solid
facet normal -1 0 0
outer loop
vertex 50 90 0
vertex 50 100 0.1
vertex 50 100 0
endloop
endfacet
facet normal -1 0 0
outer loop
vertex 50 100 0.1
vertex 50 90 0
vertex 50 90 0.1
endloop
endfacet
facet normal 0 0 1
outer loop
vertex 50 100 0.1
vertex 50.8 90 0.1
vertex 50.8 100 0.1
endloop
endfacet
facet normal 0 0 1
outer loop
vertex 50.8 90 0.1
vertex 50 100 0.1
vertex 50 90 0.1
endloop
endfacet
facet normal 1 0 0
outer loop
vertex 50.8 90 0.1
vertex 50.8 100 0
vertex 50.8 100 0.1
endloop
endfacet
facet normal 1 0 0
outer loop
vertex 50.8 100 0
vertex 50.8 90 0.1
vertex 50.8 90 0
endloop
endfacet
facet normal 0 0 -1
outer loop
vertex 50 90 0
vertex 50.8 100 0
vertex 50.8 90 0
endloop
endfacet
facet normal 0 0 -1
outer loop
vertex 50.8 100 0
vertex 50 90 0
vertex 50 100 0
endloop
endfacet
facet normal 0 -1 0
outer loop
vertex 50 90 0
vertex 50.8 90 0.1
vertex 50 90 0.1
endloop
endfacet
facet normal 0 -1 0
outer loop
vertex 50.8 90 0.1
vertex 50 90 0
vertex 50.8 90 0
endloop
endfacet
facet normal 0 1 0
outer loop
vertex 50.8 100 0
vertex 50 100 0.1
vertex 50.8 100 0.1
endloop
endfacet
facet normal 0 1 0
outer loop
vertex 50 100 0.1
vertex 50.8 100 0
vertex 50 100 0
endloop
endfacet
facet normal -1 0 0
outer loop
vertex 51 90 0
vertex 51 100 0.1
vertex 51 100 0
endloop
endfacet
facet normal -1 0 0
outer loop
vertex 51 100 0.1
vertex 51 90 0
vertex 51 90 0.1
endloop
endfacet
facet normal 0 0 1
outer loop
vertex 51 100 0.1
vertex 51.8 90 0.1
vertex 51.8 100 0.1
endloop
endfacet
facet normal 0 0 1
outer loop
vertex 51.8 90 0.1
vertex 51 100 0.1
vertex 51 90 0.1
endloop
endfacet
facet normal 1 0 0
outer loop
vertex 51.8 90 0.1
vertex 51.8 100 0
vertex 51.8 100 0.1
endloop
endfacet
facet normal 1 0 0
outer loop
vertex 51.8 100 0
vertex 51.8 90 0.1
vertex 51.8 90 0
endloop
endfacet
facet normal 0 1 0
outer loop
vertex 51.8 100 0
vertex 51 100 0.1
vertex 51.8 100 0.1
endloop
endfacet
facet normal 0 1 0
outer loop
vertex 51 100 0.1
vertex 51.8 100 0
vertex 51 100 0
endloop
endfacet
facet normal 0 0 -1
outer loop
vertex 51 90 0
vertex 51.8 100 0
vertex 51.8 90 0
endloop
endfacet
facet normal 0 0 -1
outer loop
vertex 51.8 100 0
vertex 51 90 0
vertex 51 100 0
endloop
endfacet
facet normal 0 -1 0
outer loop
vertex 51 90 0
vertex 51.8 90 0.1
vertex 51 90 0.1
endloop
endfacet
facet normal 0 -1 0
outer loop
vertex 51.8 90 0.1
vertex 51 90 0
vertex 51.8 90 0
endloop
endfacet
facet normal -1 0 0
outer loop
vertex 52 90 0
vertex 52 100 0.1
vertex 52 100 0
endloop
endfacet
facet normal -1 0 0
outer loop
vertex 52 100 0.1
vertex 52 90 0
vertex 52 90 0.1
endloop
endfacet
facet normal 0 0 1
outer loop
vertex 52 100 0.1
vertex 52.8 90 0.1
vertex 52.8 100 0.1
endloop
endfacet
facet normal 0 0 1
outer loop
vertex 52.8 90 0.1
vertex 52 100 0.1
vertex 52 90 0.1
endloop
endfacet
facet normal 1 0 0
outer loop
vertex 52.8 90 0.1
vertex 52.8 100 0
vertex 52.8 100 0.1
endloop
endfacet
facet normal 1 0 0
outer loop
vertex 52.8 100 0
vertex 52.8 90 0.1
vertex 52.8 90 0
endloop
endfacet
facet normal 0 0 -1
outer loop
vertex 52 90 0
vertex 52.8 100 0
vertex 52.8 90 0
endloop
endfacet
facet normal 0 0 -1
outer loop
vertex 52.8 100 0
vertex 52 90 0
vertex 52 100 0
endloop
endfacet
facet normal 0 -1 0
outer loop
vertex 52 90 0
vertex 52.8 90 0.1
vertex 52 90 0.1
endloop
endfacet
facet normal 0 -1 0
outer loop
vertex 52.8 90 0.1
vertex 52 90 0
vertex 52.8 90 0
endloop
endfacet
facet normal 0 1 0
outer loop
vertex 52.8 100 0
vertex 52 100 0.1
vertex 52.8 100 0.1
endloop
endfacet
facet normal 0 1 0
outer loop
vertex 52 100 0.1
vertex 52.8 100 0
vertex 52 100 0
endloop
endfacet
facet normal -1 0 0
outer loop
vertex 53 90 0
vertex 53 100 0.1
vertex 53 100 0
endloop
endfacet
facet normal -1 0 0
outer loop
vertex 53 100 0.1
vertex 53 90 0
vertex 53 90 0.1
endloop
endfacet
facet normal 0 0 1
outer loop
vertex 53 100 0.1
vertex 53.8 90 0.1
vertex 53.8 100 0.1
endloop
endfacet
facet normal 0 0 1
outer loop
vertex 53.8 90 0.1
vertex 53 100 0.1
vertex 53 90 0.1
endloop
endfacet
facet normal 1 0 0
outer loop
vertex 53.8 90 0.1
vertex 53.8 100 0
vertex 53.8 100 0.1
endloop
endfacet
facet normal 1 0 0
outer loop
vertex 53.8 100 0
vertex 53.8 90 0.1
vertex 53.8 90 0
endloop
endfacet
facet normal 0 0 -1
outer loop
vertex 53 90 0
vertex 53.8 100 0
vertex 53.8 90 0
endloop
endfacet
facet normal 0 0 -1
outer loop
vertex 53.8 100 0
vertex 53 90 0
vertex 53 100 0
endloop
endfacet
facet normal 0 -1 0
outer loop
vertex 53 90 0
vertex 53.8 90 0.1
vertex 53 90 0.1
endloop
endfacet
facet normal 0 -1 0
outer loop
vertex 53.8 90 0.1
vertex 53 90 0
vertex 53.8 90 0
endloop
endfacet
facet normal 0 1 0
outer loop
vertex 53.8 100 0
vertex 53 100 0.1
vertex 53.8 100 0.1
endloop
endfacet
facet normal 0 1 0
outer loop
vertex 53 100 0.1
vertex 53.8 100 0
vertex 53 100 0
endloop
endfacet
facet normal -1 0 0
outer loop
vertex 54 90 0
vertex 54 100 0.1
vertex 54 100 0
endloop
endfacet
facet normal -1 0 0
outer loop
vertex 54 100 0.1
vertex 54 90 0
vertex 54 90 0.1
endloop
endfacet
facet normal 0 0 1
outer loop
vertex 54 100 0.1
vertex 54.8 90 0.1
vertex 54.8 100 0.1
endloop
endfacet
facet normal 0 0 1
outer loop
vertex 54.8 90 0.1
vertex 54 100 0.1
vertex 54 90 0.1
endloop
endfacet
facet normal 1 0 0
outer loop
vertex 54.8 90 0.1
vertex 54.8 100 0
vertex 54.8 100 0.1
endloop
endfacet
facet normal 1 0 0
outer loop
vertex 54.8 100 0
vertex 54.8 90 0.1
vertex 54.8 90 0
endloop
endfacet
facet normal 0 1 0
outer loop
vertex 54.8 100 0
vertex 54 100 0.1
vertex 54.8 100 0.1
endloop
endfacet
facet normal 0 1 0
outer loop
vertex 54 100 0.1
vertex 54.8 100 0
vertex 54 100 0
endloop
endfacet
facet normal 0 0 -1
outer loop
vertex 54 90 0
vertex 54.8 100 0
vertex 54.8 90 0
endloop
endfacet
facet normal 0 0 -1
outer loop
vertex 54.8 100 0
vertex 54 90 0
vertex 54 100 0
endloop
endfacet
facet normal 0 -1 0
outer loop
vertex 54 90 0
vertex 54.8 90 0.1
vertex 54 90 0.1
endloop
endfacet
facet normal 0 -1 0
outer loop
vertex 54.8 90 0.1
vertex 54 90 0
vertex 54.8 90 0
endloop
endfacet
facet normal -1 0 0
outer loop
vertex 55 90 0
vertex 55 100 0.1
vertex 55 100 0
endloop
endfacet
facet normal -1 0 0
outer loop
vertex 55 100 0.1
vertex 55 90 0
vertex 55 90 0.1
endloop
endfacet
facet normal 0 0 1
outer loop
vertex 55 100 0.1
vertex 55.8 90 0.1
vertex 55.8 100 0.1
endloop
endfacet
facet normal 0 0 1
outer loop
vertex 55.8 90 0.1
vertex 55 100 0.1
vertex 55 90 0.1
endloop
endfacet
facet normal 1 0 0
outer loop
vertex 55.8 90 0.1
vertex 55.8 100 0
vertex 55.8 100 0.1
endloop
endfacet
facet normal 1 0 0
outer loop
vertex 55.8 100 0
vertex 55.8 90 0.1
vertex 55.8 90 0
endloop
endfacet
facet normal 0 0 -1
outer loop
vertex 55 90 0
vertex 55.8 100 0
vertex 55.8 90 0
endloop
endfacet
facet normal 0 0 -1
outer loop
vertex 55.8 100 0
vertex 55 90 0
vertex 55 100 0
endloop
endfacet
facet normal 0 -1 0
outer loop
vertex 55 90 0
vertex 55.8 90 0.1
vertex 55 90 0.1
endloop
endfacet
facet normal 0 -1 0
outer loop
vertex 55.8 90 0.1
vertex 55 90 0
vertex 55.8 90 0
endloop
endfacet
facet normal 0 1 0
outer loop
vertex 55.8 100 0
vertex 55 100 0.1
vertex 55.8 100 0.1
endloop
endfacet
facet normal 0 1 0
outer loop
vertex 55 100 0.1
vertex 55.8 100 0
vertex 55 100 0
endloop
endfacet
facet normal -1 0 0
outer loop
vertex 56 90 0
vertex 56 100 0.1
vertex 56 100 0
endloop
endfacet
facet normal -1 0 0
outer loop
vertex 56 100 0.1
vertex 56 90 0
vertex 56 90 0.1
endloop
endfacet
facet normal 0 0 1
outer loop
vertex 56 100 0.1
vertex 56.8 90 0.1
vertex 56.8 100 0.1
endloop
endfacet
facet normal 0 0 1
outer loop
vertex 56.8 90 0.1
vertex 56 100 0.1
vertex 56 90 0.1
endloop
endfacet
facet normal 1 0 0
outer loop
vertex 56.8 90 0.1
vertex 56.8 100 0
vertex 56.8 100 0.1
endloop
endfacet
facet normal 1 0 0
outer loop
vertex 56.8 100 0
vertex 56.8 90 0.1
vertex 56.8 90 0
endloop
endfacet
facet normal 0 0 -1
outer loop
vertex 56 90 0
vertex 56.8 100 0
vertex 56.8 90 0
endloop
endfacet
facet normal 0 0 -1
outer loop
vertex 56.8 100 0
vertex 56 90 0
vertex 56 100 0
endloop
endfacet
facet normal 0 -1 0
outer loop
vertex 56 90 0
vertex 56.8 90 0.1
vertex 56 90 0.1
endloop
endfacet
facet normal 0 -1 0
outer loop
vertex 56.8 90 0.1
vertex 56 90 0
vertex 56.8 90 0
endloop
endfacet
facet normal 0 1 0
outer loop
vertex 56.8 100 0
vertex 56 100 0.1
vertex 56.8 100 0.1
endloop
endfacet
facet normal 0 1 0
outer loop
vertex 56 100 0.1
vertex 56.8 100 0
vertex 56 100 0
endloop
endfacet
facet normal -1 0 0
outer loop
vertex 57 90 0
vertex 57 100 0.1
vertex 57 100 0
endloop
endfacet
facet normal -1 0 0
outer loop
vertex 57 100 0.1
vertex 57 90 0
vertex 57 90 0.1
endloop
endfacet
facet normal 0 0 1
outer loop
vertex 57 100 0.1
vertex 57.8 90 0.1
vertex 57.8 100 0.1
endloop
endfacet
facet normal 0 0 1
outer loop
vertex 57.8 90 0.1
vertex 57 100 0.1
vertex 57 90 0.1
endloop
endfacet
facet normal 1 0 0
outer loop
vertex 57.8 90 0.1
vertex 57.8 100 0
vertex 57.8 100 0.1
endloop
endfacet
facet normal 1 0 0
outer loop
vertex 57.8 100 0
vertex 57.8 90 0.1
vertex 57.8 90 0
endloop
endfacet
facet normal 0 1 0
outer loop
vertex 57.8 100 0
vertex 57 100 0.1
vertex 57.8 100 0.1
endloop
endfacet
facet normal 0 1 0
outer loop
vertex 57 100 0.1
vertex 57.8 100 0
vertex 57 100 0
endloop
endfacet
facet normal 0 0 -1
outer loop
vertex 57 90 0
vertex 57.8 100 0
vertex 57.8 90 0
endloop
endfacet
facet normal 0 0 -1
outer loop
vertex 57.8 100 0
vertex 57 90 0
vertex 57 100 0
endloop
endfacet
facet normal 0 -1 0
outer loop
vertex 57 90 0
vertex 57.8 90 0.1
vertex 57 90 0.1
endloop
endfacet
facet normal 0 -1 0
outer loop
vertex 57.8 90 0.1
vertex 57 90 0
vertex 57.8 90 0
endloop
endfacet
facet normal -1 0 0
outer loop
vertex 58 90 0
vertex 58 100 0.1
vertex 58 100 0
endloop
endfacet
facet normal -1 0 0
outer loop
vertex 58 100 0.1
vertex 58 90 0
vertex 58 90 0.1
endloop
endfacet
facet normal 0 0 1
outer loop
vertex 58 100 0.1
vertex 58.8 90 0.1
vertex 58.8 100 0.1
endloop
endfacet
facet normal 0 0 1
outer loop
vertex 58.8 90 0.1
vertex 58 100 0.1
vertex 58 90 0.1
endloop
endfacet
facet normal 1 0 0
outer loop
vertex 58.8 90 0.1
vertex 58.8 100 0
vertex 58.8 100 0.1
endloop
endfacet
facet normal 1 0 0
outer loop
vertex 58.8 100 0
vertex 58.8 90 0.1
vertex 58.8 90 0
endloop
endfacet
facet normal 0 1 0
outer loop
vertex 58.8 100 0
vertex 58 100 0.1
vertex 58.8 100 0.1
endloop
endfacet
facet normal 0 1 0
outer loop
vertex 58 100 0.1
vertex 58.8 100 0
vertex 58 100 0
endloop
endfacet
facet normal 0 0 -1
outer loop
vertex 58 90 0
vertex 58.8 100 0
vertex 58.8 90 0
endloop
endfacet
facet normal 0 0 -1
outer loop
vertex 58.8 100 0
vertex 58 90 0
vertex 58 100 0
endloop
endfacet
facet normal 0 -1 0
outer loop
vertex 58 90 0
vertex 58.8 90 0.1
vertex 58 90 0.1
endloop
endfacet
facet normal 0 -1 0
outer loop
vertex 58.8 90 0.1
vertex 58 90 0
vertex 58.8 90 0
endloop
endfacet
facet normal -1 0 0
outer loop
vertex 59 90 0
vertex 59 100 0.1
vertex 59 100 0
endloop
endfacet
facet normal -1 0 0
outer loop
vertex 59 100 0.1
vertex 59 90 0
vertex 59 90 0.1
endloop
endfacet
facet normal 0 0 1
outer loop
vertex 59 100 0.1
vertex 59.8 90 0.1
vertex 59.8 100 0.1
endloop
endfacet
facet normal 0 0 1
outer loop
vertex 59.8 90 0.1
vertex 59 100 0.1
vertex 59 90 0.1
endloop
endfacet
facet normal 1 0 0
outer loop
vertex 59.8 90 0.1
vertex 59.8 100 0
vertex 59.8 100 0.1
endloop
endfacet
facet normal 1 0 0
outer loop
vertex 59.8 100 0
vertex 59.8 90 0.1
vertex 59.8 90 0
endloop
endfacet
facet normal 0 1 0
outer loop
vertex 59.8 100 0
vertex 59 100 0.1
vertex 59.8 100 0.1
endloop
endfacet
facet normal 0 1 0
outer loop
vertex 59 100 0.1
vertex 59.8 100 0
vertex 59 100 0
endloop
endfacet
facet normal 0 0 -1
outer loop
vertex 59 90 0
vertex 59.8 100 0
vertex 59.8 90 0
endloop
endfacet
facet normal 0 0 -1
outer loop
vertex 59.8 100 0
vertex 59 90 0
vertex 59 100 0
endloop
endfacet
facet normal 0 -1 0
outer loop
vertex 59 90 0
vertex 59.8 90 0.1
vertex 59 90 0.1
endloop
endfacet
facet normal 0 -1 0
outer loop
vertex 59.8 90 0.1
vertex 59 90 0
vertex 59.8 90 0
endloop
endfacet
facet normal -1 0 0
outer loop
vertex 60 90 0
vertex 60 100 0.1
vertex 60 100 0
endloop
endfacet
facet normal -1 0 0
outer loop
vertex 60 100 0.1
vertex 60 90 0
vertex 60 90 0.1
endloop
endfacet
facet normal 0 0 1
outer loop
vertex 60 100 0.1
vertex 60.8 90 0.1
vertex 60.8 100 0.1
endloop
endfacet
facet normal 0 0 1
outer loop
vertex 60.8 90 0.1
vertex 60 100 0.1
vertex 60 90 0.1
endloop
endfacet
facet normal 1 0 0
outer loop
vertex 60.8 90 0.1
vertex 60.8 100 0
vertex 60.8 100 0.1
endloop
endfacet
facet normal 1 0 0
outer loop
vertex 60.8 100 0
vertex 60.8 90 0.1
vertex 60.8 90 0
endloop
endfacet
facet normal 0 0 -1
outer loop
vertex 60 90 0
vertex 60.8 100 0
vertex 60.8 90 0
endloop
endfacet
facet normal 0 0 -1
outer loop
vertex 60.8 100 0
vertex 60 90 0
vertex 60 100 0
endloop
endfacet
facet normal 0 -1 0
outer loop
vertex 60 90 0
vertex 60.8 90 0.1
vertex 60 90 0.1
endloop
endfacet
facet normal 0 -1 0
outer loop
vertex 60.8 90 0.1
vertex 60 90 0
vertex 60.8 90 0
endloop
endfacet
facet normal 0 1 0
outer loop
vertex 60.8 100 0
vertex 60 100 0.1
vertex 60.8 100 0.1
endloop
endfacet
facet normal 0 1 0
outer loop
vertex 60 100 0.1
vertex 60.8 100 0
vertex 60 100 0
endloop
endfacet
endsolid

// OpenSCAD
translate([10+40,10+80,0])
        for (i = [0 : 10]){
            translate([i,0,0])
                cube(size = [0.8,10,0.1]);
    }
